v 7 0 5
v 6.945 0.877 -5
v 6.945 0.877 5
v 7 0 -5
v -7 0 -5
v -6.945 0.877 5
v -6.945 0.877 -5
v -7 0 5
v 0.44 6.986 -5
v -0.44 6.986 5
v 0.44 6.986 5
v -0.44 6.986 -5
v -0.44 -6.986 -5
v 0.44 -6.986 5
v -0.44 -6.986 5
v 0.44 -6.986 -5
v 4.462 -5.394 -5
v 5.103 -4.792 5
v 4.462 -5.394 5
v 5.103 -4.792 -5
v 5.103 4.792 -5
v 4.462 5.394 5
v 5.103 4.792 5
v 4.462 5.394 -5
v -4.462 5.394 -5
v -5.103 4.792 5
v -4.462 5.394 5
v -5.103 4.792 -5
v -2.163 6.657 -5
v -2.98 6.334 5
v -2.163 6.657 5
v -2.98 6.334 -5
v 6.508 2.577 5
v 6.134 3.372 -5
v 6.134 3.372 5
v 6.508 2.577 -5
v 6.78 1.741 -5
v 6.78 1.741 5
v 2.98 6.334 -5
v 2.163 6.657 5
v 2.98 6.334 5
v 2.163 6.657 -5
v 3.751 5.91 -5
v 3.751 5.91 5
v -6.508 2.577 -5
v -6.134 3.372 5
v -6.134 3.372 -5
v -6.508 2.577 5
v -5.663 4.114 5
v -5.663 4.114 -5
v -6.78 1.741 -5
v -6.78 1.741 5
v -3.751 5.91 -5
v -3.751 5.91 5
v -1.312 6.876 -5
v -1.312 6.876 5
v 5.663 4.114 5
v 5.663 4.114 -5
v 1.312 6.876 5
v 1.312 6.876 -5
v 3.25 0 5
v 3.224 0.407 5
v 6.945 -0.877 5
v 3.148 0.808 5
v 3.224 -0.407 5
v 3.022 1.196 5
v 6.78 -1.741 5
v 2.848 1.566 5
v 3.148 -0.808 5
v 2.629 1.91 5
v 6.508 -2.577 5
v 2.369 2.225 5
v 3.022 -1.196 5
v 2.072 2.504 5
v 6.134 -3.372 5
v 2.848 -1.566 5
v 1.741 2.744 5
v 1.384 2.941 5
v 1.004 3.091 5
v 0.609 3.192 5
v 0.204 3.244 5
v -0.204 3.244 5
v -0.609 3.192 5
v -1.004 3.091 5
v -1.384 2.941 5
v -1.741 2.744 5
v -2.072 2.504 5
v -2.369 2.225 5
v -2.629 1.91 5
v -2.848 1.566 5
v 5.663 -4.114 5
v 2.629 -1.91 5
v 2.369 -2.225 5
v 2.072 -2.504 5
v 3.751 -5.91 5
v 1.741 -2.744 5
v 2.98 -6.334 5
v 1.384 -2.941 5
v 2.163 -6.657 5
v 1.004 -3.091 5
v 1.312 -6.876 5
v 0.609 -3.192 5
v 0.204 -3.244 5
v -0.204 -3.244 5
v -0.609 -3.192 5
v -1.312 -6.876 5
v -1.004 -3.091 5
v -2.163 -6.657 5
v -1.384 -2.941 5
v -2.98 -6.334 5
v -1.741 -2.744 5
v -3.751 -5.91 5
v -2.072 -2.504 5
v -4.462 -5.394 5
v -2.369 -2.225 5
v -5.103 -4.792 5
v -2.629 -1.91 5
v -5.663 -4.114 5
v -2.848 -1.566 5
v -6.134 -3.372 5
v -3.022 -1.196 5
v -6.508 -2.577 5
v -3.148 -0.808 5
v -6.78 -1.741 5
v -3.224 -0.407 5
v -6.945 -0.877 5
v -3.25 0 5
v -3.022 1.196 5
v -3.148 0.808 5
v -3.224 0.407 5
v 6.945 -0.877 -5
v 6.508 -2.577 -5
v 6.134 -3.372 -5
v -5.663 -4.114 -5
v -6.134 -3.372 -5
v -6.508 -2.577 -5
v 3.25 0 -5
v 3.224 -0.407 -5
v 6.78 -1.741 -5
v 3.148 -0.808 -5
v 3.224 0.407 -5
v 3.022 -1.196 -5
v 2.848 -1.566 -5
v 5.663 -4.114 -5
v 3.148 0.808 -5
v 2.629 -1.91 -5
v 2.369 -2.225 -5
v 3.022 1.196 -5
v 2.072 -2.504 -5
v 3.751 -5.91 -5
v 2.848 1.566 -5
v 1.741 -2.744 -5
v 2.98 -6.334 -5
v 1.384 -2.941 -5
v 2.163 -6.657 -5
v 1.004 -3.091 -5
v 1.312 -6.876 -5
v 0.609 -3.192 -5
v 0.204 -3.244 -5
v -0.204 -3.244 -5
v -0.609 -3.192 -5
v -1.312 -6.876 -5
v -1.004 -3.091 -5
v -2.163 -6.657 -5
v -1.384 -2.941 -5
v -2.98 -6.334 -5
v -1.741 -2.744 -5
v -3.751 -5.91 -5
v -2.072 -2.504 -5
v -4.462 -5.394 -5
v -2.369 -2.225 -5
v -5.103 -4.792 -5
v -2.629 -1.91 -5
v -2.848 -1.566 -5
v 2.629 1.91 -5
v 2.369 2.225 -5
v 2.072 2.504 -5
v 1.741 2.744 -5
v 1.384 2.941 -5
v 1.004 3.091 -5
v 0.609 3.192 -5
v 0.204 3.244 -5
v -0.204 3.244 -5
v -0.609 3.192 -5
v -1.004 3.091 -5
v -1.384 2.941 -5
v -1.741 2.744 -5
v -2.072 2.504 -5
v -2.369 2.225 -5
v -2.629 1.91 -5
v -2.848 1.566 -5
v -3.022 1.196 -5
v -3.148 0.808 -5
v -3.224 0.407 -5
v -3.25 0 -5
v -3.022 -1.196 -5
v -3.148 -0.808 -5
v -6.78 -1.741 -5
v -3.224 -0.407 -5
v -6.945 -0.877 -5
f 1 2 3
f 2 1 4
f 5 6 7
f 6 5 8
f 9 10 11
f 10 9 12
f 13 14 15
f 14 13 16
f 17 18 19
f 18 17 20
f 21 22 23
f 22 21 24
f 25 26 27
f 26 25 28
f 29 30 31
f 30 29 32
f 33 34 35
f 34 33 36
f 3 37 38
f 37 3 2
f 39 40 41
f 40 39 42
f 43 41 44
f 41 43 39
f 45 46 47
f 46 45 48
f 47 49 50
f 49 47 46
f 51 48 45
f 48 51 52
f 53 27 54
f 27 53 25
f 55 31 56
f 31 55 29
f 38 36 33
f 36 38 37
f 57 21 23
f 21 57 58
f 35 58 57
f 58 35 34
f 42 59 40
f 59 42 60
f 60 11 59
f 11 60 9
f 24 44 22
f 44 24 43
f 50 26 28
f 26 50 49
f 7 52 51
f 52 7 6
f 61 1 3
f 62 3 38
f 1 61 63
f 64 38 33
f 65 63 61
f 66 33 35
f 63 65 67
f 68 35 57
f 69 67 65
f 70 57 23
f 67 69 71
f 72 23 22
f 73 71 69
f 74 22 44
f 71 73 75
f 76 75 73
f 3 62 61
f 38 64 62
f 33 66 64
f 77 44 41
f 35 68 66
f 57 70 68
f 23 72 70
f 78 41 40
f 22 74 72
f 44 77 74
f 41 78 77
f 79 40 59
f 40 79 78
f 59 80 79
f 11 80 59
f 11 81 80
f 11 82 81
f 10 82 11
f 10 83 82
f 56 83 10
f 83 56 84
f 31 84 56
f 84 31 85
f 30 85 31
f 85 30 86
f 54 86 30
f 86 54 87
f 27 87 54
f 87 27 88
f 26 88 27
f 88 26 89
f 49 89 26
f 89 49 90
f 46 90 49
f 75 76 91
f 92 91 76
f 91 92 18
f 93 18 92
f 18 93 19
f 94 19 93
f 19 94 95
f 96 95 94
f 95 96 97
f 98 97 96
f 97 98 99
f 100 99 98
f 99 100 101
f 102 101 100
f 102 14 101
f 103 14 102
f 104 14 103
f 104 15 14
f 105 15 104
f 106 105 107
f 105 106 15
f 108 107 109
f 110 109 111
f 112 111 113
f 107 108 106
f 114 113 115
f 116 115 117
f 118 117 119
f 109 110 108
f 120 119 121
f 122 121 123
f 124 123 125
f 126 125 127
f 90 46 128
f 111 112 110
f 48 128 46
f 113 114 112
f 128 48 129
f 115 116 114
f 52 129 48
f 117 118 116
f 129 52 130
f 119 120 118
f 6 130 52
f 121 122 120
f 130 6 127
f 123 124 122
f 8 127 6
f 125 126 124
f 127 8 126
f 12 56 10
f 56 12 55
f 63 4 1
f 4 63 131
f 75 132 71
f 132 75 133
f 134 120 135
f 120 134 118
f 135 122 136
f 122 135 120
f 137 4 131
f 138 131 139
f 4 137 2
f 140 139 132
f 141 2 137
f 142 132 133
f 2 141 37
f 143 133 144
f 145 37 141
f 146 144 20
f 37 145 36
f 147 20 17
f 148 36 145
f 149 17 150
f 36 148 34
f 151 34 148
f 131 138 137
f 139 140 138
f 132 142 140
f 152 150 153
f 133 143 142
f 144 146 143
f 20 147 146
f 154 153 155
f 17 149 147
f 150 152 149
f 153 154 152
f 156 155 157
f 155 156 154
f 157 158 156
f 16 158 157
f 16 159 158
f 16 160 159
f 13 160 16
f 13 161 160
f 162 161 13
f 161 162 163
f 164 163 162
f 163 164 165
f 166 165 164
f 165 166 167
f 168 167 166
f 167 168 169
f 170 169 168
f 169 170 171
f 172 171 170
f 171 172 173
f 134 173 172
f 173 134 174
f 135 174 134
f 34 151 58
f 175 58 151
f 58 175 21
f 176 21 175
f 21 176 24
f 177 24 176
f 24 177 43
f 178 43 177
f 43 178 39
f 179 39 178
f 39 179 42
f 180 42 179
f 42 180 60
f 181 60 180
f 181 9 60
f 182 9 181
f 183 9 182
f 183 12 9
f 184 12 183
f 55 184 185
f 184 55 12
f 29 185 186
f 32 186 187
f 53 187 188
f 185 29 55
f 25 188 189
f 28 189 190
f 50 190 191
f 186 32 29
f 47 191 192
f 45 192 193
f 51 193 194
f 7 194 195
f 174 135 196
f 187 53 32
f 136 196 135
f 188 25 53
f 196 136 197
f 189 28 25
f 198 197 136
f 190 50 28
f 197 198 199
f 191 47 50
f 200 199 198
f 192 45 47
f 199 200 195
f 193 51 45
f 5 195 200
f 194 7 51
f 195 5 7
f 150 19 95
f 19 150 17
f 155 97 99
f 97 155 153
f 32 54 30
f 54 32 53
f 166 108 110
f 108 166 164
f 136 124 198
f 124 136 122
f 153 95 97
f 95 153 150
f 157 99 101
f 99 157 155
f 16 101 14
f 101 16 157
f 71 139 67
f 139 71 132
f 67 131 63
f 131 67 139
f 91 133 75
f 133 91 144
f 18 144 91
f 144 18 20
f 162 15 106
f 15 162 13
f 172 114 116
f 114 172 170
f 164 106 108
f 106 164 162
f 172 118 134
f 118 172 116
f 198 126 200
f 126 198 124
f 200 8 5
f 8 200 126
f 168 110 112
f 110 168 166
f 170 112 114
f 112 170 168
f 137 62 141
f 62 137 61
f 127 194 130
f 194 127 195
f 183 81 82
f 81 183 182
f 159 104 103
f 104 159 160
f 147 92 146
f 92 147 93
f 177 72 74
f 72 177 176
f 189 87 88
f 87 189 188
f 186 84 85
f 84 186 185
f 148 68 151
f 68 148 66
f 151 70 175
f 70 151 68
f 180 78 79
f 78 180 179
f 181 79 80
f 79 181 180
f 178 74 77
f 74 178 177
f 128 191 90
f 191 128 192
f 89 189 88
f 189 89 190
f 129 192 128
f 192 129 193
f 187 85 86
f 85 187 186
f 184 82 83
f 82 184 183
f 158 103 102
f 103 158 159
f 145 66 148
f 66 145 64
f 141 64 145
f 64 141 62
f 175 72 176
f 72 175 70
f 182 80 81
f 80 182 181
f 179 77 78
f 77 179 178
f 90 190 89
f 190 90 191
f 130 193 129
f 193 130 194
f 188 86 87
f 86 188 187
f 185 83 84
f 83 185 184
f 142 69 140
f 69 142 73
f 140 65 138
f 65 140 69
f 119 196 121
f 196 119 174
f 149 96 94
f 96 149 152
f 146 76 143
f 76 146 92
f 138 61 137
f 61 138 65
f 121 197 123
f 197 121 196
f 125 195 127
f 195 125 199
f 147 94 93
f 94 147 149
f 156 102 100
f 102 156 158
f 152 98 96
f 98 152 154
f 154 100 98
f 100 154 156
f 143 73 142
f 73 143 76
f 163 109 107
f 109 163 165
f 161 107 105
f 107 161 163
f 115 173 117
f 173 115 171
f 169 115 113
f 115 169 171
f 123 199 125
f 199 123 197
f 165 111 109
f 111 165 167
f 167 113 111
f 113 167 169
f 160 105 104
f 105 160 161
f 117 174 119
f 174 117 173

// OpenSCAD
$fn = 50;


difference() {
	union() {
		translate(v = [0, 0, -5.0000000000]) {
			cylinder(h = 10, r = 7.0000000000);
		}
	}
	union() {
		translate(v = [0, 0, -100.0000000000]) {
			cylinder(h = 200, r = 3.2500000000);
		}
	}
}
